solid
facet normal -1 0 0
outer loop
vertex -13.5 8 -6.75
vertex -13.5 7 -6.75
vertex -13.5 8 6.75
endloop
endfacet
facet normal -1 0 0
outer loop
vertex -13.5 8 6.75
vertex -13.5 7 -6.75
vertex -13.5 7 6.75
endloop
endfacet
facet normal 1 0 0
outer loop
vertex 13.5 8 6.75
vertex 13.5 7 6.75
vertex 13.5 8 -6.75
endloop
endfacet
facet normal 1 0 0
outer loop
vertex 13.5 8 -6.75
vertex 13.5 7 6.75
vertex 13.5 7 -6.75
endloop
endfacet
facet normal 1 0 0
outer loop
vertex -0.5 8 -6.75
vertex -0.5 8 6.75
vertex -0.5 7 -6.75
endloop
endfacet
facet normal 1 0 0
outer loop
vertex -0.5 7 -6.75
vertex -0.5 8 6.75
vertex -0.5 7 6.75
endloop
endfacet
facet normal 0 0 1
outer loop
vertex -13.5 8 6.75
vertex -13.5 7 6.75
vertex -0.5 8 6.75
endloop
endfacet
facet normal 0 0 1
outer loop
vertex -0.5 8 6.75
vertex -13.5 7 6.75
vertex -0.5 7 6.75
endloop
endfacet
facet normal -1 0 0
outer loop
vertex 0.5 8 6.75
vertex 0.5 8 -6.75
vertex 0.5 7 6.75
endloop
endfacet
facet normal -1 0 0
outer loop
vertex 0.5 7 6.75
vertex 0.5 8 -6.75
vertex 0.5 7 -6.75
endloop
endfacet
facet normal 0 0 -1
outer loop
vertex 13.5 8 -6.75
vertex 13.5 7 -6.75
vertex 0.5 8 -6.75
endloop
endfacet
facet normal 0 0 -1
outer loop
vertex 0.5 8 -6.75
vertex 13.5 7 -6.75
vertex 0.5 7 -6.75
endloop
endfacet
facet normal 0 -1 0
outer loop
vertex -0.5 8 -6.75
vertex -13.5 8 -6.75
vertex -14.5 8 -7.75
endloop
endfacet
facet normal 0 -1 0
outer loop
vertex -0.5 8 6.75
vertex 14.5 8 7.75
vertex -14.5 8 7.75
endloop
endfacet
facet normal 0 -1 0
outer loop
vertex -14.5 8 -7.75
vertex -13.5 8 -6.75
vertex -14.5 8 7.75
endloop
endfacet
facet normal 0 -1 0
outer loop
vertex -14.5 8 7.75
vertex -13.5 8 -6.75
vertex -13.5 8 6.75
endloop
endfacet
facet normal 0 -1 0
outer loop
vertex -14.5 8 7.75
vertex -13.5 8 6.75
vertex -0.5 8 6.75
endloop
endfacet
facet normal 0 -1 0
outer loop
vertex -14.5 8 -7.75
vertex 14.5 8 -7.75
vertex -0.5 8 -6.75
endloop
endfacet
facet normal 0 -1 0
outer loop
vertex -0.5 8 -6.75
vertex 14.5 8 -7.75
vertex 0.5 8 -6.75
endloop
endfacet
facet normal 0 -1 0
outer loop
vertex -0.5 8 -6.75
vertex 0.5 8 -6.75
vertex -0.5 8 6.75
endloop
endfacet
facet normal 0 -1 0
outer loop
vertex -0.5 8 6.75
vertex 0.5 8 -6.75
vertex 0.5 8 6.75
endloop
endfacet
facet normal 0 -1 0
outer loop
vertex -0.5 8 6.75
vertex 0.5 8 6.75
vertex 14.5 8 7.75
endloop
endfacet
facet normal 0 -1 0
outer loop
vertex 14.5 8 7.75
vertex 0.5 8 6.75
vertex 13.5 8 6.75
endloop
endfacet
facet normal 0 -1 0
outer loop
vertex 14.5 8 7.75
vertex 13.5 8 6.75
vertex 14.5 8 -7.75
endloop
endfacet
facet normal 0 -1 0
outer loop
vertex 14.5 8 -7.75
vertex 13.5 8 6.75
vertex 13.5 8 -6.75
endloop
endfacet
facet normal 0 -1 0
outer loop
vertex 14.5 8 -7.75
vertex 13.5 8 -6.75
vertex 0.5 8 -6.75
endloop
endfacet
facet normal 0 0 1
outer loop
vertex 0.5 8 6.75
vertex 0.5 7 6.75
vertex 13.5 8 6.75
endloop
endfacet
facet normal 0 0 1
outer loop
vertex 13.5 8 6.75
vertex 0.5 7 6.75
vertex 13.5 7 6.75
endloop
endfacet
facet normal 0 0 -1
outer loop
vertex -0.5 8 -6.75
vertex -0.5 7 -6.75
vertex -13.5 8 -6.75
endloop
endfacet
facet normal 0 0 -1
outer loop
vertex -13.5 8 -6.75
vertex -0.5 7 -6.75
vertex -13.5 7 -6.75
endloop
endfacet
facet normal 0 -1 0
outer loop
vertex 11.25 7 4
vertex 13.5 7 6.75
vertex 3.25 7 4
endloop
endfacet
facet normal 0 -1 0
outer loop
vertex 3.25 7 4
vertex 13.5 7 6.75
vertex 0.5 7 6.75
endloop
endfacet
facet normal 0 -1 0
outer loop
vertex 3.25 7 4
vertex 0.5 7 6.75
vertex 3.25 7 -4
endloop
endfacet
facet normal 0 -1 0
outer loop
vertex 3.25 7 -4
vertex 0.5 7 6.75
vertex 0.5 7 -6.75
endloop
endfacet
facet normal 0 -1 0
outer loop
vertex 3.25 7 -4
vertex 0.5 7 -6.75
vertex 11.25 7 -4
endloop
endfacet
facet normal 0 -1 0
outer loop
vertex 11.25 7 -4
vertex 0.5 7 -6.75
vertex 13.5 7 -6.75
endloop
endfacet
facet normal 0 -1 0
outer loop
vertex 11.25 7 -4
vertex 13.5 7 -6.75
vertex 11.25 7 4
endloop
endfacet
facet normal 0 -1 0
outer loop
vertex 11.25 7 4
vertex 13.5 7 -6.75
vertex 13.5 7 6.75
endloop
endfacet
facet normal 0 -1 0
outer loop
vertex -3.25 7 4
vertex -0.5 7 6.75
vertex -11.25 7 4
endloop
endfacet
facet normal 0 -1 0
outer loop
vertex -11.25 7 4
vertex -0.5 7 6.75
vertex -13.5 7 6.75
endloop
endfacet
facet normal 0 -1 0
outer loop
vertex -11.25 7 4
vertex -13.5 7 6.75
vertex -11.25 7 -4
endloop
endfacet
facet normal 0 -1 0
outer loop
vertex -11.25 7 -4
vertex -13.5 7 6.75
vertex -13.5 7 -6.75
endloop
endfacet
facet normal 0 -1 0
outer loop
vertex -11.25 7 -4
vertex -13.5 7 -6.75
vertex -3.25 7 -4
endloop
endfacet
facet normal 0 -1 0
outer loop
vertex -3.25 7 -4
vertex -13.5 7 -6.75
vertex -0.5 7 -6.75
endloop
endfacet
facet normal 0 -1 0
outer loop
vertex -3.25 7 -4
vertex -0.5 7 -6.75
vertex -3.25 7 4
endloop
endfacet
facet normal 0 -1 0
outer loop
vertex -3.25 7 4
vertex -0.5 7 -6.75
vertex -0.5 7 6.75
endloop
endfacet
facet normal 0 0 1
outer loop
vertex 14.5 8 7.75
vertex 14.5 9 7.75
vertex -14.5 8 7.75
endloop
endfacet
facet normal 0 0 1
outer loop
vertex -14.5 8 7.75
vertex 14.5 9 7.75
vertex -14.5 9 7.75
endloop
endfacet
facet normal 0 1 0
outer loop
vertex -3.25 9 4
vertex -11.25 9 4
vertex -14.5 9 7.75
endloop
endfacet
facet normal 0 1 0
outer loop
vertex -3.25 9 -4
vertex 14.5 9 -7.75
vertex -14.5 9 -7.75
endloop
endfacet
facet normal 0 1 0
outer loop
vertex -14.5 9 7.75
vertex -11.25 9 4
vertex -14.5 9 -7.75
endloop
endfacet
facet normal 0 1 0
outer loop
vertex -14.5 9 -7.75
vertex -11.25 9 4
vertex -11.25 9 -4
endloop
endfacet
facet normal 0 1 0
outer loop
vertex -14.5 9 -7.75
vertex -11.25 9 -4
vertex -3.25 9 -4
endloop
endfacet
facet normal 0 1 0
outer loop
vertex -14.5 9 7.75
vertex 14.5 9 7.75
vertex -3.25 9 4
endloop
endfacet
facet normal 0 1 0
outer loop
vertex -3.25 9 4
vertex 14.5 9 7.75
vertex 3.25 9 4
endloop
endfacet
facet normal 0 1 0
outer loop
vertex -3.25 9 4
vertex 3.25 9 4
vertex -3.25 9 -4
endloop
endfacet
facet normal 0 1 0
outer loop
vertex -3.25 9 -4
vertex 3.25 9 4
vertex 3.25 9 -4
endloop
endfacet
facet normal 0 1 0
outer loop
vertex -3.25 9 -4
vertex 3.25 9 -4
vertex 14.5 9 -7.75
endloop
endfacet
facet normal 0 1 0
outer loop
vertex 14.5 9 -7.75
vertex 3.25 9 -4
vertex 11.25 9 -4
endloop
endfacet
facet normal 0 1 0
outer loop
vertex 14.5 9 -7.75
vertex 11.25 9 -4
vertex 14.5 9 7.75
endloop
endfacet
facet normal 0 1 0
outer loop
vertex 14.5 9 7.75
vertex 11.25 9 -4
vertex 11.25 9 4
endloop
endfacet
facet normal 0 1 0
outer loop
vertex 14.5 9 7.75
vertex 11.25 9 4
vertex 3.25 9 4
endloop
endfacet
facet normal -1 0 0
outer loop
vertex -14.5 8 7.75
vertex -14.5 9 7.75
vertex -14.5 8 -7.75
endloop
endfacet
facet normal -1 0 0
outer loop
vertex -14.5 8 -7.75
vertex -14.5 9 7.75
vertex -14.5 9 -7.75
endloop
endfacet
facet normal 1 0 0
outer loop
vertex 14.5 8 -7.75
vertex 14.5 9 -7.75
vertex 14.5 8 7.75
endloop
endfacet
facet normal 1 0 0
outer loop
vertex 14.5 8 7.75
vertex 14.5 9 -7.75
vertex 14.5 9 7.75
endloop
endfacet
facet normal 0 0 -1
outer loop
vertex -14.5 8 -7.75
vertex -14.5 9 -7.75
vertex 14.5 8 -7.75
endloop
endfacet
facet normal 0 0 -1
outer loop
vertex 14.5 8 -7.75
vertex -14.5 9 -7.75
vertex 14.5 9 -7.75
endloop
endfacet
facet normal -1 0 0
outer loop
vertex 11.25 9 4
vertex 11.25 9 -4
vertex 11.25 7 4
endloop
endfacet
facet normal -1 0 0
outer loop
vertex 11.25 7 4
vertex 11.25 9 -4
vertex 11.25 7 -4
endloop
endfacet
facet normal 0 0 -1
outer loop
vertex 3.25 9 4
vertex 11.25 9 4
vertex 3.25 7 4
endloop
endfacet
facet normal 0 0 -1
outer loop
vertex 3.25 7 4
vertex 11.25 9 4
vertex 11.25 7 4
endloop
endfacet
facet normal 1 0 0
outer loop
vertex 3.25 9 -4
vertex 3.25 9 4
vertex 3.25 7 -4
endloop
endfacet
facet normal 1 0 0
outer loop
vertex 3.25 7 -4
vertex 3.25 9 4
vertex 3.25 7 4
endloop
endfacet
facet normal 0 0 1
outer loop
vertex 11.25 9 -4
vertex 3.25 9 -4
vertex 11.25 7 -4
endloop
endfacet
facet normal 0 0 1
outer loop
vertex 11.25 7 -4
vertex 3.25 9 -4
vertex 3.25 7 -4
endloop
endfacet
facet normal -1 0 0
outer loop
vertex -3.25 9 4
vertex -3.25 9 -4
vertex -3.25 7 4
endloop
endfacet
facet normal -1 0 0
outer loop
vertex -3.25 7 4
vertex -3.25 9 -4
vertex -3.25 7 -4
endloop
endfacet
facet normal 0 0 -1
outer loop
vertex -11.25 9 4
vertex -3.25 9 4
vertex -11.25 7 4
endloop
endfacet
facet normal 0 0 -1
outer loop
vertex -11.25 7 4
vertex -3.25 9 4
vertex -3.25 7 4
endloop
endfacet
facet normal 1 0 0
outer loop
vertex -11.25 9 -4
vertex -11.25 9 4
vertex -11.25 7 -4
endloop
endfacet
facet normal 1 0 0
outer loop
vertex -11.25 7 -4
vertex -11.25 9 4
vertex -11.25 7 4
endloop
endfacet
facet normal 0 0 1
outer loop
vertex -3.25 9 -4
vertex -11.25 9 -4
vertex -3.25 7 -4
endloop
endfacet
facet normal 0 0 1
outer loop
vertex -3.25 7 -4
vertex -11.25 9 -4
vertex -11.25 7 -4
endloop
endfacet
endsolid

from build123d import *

# Parameters (mm, degrees)
SKETCH1_W                = 29
SKETCH1_H                = 15.5
BOSS_EXTRUDE1_DEPTH      = 8
SHELL1_T                 = -1
SKETCH2_W                = 1
SKETCH2_H                = 13.5
BOSS_EXTRUDE2_DEPTH      = 7
SKETCH3_W                = 8
SKETCH3_H                = 3
CUT_EXTRUDE1_DEPTH       = 7
SKETCH4_W                = 29
SKETCH4_H                = 2
BOSS_EXTRUDE3_DEPTH      = 15.5
INTERSECT1_OUTLINE_W     = 29
INTERSECT1_OUTLINE_H     = 15.5
INTERSECT1_OUTLINE_W_2   = 8
INTERSECT1_OUTLINE_H_2   = 3
INTERSECT1_DEPTH         = 7
INTERSECT1_START         = 7
INTERSECT1_2_OUTLINE_W   = 29
INTERSECT1_2_OUTLINE_H   = 15.5
INTERSECT1_2_OUTLINE_W_2 = 13
INTERSECT1_2_OUTLINE_H_2 = 13.5
INTERSECT1_2_DEPTH       = 1
SKETCH5_W                = 8
SKETCH5_H                = 8
CUT_EXTRUDE2_DEPTH       = 15.5


# Read off the part's stored shape, not the designer's step: Intersect1
with BuildPart() as part:
    # Sketch1 → Boss-Extrude1 (new body)
    with BuildSketch(Plane(origin=(0, 0, 0), x_dir=(1, 0, 0), z_dir=(0, 1, 0))):
        Rectangle(SKETCH1_W, SKETCH1_H)
    extrude(amount=BOSS_EXTRUDE1_DEPTH)

    # Shell1
    shell1_openings = [part.faces().sort_by_distance(p)[0] for p in [
        (0, 8, 0),
    ]]
    offset(amount=SHELL1_T, openings=shell1_openings, kind=Kind.INTERSECTION)

    # Sketch2 → Boss-Extrude2 (add)
    with BuildSketch(Plane(origin=(0, 1, 0), x_dir=(1, 0, 0), z_dir=(0, 1, 0))):
        Rectangle(SKETCH2_W, SKETCH2_H)
    extrude(amount=BOSS_EXTRUDE2_DEPTH)

    # Sketch3 → Cut-Extrude1 (cut)
    with BuildSketch(Plane(origin=(0, 1, 0), x_dir=(1, 0, 0), z_dir=(0, 1, 0))):
        with Locations((-7.25, 5.25)):
            Rectangle(SKETCH3_W, SKETCH3_H)
        with Locations((7.25, 5.25)):
            Rectangle(SKETCH3_W, SKETCH3_H)
        with Locations((7.25, -5.25)):
            Rectangle(SKETCH3_W, SKETCH3_H)
        with Locations((-7.25, -5.25)):
            Rectangle(SKETCH3_W, SKETCH3_H)
    extrude(amount=-CUT_EXTRUDE1_DEPTH, mode=Mode.SUBTRACT)

    # Intersect1 outline → Intersect1 (cut)
    with BuildSketch(Plane(origin=(0, 0, 0), x_dir=(1, 0, 0), z_dir=(0, 1, 0))):
        Rectangle(INTERSECT1_OUTLINE_W, INTERSECT1_OUTLINE_H)
        with Locations((-7.25, -5.25)):
            Rectangle(INTERSECT1_OUTLINE_W_2, INTERSECT1_OUTLINE_H_2, mode=Mode.SUBTRACT)
        with Locations((-7.25, 5.25)):
            Rectangle(INTERSECT1_OUTLINE_W_2, INTERSECT1_OUTLINE_H_2, mode=Mode.SUBTRACT)
        with Locations((7.25, 5.25)):
            Rectangle(INTERSECT1_OUTLINE_W_2, INTERSECT1_OUTLINE_H_2, mode=Mode.SUBTRACT)
        with Locations((7.25, -5.25)):
            Rectangle(INTERSECT1_OUTLINE_W_2, INTERSECT1_OUTLINE_H_2, mode=Mode.SUBTRACT)
    extrude(amount=INTERSECT1_DEPTH, mode=Mode.SUBTRACT)


with BuildPart() as body_2:
    # Sketch4 → Boss-Extrude3 (new body)
    with BuildSketch(Plane.XY.offset(7.75)):
        with Locations((0, 8)):
            Rectangle(SKETCH4_W, SKETCH4_H)
    extrude(amount=-BOSS_EXTRUDE3_DEPTH)


with BuildPart() as intersect1_2_tool:
    # Intersect1 2 outline → Intersect1 2 (new body)
    with BuildSketch(Plane(origin=(0, 0, 0), x_dir=(1, 0, 0), z_dir=(0, 1, 0)).offset(INTERSECT1_START)):
        Rectangle(INTERSECT1_2_OUTLINE_W, INTERSECT1_2_OUTLINE_H)
        with Locations((-7, 0)):
            Rectangle(INTERSECT1_2_OUTLINE_W_2, INTERSECT1_2_OUTLINE_H_2, mode=Mode.SUBTRACT)
        with Locations((7, 0)):
            Rectangle(INTERSECT1_2_OUTLINE_W_2, INTERSECT1_2_OUTLINE_H_2, mode=Mode.SUBTRACT)
    extrude(amount=INTERSECT1_2_DEPTH)


with BuildPart() as part_1:
    add(part.part)

    # Intersect1 2: cut by intersect1_2_tool
    add(intersect1_2_tool.part, mode=Mode.SUBTRACT)


with BuildPart() as body_2_1:
    add(body_2.part)

    # Intersect1 2: cut by intersect1_2_tool
    add(intersect1_2_tool.part, mode=Mode.SUBTRACT)

    # Sketch5 → Cut-Extrude2 (cut)
    with BuildSketch(Plane(origin=(0, 9, 0), x_dir=(1, 0, 0), z_dir=(0, 1, 0))):
        with Locations((-7.25, 0)):
            Rectangle(SKETCH5_W, SKETCH5_H)
        with Locations((7.25, 0)):
            Rectangle(SKETCH5_W, SKETCH5_H)
    extrude(amount=-CUT_EXTRUDE2_DEPTH, mode=Mode.SUBTRACT)


solid = body_2_1.part
